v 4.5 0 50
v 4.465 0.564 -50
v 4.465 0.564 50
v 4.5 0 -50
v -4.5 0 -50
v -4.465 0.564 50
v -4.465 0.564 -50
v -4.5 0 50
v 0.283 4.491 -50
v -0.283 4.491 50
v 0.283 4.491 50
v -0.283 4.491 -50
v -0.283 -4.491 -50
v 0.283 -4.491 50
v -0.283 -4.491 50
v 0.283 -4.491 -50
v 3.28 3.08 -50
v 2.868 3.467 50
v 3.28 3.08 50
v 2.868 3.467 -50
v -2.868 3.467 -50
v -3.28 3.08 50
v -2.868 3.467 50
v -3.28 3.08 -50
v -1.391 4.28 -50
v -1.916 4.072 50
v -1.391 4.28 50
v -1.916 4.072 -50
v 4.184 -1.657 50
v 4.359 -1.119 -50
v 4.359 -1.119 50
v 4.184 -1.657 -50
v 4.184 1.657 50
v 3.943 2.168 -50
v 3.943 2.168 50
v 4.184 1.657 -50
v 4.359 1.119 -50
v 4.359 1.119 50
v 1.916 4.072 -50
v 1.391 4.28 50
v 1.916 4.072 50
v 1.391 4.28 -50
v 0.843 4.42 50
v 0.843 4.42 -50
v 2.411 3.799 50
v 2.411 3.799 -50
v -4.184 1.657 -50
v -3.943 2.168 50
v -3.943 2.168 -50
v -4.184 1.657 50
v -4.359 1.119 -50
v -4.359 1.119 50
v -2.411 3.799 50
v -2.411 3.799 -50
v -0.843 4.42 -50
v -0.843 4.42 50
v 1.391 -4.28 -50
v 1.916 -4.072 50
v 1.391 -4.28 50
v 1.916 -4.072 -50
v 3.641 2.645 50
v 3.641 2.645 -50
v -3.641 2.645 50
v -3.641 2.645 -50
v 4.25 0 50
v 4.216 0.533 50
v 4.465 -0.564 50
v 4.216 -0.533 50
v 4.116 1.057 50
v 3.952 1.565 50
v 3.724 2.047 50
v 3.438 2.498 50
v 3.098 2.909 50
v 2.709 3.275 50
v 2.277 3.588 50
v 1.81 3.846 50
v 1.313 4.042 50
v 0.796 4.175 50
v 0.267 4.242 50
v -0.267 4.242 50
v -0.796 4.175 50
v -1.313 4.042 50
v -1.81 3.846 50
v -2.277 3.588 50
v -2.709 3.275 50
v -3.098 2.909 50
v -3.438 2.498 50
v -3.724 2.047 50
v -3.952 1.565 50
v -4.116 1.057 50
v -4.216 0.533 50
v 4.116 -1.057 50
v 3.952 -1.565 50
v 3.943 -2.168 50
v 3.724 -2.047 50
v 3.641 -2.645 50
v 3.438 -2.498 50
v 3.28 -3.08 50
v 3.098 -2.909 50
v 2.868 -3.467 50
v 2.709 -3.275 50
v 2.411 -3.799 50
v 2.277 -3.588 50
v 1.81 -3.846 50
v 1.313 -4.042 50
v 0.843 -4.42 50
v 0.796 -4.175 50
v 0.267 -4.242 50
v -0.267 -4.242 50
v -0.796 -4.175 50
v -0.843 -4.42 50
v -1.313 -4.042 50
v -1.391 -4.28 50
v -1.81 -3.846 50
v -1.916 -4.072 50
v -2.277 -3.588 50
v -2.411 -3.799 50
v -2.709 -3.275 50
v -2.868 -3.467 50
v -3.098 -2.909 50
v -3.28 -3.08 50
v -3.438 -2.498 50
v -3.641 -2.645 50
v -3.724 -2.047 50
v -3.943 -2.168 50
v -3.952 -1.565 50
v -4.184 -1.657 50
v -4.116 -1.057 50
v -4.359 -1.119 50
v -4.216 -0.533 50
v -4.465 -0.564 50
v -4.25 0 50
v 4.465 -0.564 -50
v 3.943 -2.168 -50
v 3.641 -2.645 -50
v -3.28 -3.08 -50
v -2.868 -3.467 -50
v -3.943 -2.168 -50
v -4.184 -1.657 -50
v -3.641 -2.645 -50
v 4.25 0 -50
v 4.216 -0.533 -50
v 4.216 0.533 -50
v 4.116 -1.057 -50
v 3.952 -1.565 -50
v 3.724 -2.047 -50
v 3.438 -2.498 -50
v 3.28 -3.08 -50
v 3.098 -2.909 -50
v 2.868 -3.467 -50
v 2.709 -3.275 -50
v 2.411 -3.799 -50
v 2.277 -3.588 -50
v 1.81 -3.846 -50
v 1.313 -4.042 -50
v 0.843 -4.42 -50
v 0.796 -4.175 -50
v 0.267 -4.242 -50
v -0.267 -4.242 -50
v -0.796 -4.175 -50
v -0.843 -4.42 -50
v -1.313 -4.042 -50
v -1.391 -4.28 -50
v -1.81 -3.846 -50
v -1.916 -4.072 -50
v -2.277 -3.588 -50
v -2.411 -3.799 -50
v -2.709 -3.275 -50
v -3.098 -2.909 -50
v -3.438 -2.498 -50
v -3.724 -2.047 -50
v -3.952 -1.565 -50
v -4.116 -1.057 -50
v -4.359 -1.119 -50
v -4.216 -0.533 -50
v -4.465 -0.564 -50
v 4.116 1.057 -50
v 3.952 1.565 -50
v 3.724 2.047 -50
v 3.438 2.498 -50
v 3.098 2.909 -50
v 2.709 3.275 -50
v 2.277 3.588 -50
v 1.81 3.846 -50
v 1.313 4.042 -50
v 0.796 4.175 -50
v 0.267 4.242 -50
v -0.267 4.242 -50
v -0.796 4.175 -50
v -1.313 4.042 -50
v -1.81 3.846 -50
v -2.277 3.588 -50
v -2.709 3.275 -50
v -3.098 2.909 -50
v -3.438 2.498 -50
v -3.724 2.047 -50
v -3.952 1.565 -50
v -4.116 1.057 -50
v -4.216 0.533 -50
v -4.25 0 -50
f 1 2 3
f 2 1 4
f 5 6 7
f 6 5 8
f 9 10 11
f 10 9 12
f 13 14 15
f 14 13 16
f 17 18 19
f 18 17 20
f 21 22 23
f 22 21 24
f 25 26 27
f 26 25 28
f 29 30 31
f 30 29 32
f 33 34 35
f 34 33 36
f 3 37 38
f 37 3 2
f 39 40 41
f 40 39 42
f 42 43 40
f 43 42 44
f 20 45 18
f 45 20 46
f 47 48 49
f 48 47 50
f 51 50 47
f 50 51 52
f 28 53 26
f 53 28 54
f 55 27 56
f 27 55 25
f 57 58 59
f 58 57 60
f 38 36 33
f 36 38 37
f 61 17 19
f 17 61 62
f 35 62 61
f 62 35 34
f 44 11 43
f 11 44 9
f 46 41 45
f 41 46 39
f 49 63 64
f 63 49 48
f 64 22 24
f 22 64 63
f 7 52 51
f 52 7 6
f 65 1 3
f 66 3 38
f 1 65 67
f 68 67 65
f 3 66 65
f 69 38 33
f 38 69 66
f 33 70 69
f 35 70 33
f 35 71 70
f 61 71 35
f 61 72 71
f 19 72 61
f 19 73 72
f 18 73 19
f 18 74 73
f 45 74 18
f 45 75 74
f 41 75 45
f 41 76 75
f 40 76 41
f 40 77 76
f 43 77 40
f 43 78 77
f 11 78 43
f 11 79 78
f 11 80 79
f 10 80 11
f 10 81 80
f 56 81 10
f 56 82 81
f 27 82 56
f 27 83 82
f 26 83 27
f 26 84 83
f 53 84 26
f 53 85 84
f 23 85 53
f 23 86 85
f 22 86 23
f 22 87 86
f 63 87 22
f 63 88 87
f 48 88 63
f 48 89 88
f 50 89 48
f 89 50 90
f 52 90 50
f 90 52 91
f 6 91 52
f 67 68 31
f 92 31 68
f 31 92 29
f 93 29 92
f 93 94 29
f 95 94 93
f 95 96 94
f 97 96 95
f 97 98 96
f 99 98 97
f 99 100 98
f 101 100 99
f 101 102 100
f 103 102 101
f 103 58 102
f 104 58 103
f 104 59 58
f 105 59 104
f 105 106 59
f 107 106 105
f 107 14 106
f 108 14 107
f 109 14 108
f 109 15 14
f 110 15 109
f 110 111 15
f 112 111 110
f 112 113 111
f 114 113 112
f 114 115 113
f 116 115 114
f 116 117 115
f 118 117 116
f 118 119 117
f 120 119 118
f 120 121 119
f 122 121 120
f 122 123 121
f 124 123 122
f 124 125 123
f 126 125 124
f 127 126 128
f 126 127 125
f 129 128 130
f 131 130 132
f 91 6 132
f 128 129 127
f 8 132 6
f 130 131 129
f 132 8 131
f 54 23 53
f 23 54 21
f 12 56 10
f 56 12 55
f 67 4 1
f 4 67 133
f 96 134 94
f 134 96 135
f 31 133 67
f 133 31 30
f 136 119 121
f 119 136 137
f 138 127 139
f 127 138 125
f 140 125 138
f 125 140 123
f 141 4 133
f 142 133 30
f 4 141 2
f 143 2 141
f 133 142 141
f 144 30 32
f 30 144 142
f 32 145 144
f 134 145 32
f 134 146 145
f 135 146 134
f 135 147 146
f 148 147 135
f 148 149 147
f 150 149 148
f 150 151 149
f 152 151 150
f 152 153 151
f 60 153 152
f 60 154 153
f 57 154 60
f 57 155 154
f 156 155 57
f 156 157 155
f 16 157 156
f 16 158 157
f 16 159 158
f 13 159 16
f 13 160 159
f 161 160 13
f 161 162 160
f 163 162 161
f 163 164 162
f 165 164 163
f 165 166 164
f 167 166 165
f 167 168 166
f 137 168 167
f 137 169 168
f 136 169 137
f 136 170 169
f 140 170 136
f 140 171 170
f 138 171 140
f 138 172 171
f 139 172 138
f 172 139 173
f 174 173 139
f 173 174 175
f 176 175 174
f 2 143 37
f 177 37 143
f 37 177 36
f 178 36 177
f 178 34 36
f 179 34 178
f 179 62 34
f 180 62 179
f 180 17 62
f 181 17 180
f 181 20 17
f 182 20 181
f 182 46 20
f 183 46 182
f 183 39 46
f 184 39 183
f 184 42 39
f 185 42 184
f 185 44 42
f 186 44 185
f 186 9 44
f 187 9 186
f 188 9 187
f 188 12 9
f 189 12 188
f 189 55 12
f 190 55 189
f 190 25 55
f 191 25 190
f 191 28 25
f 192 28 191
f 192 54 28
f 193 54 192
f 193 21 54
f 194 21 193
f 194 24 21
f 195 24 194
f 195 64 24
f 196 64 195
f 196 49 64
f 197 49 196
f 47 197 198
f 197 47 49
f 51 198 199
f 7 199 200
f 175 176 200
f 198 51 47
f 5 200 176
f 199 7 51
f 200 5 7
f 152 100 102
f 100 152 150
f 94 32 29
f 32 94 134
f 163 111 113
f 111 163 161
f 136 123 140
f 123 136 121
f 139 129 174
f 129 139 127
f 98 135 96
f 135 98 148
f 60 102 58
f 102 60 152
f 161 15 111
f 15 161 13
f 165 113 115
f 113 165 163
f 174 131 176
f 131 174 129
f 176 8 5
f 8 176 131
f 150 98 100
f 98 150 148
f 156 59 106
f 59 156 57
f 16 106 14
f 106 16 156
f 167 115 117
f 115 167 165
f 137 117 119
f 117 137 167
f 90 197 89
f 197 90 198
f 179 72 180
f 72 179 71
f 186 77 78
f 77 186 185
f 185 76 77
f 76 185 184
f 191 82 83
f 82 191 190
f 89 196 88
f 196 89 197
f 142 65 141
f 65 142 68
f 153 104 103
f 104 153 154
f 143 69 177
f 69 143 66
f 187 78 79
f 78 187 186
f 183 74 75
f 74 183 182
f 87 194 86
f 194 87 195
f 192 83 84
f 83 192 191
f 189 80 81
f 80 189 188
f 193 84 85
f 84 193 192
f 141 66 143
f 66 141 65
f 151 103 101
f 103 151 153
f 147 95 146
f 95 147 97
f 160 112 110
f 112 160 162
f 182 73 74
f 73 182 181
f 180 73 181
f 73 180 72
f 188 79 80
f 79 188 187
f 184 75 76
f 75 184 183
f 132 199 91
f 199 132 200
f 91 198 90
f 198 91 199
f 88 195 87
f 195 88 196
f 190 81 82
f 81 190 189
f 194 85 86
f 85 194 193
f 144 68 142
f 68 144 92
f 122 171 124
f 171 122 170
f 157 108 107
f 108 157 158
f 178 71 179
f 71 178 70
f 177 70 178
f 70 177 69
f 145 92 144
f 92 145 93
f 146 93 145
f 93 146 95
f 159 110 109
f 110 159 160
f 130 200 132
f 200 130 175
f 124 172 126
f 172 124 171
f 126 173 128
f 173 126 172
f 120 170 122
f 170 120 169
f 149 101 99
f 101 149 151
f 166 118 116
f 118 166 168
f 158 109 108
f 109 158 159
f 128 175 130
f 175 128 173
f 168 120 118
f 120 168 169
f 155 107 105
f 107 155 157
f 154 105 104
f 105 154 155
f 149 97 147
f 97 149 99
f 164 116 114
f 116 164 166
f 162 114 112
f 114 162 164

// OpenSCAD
$fn = 50;


difference() {
	union() {
		translate(v = [0, 0, -50.0000000000]) {
			cylinder(h = 100, r = 4.5000000000);
		}
	}
	union() {
		translate(v = [0, 0, -100.0000000000]) {
			cylinder(h = 200, r = 4.2500000000);
		}
	}
}
